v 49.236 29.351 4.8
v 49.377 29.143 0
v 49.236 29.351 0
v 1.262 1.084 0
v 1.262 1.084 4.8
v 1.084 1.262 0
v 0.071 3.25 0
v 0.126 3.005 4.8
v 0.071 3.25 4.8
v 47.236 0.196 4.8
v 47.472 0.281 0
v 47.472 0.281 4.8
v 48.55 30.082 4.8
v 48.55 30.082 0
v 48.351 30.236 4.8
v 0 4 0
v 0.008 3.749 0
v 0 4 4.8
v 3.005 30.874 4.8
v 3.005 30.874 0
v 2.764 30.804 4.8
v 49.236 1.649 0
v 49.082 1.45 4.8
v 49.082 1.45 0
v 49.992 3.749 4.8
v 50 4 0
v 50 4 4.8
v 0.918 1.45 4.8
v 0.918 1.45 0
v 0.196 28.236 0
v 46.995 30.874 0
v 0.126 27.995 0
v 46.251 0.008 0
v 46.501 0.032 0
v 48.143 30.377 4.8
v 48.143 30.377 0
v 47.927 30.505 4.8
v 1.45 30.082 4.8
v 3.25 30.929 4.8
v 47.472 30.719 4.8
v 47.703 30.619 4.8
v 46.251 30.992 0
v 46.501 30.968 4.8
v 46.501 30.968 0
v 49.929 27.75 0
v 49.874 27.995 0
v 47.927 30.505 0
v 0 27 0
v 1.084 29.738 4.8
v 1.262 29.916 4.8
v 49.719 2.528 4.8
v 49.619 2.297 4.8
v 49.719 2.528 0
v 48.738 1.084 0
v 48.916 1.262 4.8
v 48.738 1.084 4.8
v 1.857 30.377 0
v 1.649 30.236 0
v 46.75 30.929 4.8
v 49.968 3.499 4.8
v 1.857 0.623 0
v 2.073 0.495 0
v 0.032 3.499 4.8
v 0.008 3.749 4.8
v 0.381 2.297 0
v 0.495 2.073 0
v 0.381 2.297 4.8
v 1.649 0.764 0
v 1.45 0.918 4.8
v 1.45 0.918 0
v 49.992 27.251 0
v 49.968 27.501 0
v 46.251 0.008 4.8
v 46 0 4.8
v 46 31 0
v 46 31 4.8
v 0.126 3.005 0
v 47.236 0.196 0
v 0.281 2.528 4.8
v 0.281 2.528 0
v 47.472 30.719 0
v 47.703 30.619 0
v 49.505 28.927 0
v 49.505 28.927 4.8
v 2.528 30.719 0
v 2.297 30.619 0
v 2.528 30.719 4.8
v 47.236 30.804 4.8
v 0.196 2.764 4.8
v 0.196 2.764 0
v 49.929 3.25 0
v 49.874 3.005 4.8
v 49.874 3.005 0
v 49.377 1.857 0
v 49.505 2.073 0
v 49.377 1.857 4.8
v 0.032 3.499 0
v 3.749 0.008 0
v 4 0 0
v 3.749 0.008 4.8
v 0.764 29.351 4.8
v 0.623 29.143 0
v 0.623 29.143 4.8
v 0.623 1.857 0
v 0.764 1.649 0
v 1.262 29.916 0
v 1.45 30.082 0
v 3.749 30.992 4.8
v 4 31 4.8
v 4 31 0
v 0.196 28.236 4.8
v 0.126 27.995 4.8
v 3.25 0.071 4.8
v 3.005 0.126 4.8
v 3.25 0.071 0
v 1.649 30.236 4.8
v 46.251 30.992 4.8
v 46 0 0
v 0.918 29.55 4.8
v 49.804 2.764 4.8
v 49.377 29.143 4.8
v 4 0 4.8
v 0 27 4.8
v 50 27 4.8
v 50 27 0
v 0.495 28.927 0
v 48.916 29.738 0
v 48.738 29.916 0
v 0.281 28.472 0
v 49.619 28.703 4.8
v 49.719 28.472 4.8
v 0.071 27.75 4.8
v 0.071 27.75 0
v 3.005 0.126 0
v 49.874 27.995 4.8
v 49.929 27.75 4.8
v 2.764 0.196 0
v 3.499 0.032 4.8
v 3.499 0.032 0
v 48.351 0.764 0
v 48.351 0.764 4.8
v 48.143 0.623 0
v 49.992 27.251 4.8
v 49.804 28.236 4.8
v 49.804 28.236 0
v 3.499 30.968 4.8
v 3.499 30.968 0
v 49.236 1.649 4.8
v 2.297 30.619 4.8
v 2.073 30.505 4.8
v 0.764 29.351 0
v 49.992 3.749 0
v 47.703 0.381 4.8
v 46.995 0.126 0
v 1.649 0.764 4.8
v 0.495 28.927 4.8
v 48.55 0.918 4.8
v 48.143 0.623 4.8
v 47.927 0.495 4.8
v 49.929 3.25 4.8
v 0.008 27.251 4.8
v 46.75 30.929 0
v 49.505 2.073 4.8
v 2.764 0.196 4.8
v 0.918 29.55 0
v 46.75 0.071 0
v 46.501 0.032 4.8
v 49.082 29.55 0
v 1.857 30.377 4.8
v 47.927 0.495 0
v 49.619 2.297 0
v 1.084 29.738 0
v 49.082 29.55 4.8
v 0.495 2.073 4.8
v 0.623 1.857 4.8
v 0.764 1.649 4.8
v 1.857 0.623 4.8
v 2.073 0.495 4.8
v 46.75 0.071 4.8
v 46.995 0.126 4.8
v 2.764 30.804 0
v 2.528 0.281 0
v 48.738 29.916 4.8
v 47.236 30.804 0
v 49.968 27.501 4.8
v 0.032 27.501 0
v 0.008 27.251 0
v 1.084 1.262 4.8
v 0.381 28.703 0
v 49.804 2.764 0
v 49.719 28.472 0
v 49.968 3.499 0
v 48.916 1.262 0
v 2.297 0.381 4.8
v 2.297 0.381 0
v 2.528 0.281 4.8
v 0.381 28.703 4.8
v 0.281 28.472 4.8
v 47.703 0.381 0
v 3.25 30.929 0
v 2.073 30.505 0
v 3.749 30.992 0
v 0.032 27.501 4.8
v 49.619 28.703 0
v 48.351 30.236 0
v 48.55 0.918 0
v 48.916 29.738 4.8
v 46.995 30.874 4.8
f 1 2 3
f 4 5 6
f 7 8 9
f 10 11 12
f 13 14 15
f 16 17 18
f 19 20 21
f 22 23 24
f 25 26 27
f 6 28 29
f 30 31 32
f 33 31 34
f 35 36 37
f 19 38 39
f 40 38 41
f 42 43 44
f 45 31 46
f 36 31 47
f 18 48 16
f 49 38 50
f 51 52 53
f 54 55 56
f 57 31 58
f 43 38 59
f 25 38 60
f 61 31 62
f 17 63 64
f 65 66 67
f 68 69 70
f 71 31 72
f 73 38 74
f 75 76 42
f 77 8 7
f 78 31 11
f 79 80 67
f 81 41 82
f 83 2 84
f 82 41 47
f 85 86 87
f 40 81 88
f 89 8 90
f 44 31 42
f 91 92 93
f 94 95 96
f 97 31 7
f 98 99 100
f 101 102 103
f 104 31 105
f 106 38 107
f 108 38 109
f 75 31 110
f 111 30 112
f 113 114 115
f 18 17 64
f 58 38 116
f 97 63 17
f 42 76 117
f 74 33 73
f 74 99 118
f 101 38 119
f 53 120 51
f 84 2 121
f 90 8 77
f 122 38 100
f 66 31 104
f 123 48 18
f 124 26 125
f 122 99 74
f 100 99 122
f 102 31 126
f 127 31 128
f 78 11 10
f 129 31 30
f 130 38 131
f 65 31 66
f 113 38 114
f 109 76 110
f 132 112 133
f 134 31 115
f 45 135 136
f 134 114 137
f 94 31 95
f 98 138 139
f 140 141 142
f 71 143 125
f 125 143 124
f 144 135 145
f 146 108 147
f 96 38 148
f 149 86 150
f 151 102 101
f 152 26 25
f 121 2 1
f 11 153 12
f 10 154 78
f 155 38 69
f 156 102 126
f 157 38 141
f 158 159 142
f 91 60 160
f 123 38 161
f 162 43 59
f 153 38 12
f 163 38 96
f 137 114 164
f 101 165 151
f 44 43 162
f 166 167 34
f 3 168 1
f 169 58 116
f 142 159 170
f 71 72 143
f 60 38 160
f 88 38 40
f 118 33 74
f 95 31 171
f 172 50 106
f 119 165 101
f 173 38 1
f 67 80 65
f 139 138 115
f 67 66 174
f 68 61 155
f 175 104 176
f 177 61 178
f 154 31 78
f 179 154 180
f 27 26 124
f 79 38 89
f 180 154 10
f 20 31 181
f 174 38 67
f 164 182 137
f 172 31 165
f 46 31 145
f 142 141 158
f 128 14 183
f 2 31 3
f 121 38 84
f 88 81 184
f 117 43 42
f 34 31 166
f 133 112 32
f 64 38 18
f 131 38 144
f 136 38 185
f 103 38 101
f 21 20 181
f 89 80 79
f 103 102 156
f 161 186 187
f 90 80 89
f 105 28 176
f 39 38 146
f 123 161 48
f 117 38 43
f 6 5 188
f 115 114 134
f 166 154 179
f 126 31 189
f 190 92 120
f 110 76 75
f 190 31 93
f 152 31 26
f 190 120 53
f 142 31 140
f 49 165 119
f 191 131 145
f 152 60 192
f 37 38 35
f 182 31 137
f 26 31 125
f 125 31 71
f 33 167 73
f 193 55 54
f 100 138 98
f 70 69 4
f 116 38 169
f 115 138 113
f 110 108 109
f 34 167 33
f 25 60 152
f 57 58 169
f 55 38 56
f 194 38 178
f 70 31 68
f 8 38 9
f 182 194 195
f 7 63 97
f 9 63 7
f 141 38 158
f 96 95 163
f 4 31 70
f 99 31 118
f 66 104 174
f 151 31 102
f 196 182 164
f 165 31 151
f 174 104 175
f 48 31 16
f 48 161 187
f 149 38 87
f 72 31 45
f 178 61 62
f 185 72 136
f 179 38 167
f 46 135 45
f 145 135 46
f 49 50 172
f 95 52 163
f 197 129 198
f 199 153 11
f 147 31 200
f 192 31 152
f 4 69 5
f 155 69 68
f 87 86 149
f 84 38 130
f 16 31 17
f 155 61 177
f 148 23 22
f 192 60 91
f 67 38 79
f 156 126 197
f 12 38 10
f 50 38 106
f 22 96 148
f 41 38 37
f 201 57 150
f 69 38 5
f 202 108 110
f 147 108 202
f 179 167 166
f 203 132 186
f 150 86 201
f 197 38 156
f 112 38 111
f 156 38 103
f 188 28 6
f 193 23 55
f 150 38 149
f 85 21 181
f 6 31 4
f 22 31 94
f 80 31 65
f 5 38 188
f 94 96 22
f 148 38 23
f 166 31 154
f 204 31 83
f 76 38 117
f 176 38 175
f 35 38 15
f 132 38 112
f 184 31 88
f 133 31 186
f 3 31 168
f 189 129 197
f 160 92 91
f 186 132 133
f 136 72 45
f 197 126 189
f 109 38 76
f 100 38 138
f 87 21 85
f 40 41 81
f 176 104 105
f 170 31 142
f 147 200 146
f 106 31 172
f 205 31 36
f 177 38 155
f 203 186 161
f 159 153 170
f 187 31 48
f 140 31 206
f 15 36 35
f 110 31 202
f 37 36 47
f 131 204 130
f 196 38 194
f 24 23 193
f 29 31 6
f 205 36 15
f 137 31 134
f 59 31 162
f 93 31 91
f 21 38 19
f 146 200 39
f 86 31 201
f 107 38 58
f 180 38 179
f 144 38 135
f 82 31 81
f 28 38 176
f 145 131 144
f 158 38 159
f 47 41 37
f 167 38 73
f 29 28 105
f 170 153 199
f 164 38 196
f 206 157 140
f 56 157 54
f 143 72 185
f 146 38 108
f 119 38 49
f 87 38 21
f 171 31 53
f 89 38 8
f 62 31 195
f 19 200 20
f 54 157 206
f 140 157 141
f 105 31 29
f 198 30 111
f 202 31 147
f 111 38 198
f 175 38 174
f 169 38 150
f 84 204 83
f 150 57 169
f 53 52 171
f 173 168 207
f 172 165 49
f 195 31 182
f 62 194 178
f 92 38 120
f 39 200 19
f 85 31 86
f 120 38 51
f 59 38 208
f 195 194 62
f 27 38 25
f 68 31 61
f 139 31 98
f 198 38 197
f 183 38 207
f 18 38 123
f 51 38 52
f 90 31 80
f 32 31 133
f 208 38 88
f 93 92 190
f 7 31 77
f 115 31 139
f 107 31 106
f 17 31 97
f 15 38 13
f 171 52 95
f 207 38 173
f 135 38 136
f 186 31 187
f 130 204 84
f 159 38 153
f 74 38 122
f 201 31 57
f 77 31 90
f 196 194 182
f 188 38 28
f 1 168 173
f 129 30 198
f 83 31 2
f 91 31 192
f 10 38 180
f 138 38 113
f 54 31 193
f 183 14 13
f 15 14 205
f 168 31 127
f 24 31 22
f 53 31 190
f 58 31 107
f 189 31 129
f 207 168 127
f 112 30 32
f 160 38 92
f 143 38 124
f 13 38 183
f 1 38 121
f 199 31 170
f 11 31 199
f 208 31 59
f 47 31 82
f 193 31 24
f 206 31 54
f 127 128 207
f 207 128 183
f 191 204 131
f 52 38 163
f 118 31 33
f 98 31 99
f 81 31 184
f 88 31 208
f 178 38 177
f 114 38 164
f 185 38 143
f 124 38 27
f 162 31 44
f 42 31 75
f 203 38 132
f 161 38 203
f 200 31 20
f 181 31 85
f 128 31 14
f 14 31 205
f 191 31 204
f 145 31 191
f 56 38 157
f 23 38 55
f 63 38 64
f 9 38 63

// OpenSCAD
// file: ../configurations/global.scad
// gold_number = 1.618;

housing_facades_throws_diameter = 3.8;

// external size
case_external_x_size = 165;
case_external_y_size = 92;
case_external_z_size = 38;
case_external_panes_thickness = 4.8;

facade_front_round_edges_radius = 5;
facade_throws_margin = 5;

// facade corners
facade_corners_offset_lenght = 9;
facade_corners_main_x_size = 19;
facade_corners_main_y_size = 19;
facade_corners_main_thickness = 11;
facade_corners_correction_offset_length = 0.2;
facade_corners_correction_offset_thickness = 0.0;
facade_fn = 100;


// Generics
insert_throw_diameter = 4.2;
insert_throw_length = 6 + 2;


// mother board
mother_board_cny70set_x_point_coord = 10;
mother_board_cny70set_y_point_coord = 7;



// Cassette
cassette_x_size = 50;
cassette_y_size = 31;
cassette_z_size = 4.8;
cassette_round_radius = 4;

// Cassette case
cassette_case_x_size = 76.2;
cassette_case_y_size = 55.88;
cassette_case_z_size = 9;
cassette_case_round_radius = 1;

cassette_case_x_y_margin = 0.75;

cassette_case_embed_x_size = 62;
cassette_case_embed_y_size = 42;
cassette_case_embed_z_size = 4.8;
cassette_case_embed_offsets = 10;
cassette_case_embed_round_radius = 6;

cassette_case_throws_margin = 2.54 * 2;
cassette_case_throws_diameter = 3.5;
cassette_case_grip_enveloppe_diameter = 15;
cassette_case_grip_enveloppe_offset = 3;

cassette_case_cny70set_x_point_coord = mother_board_cny70set_x_point_coord;
cassette_case_cny70set_y_point_coord = mother_board_cny70set_y_point_coord;
cassette_case_cny70set_x_y_margin = 0.5;

// Front panel throw cassette case mounting 
cassette_case_embed_throw_margin = 0.5;


// Mother board joins
bolt_join_mother_board_internal_diameter = 3.5;
bolt_join_mother_board_external_diameter = 3.5 + (0.4 * 12);
bolt_join_mother_board_height = 8.5;
bolt_join_fn = 200;


// speaker facade
speaker_facade_x_size = 50;
speaker_facade_y_size = cassette_case_y_size - cassette_case_throws_margin * 2 + 7;
speaker_facade_z_size = 2;
speaker_facade_rounded_radius = 3;
speaker_facade_fixation_throws_margin = 3.5;
speaker_facade_fixation_throws_diameter = 3.5;
speaker_facade_throw_diameter = 40+1;
// 
facade_top_on_off_button_throw_diameter = 12.8;


facade_cassette_case_coords = [
    60 + 5,
    23,
];

facade_speaker_40mm_coords = [
    32 + 5,
    facade_cassette_case_coords[1] + (cassette_case_y_size / 2),
];

batteries_holder_coords = [
    8 + 5,
    20
];

volume_buttons_spacing = 20;
//volume_buttons_coords = [145,50];
volume_buttons_coords = [
    145 + 5 ,
    facade_cassette_case_coords[1] + (cassette_case_y_size / 2),
];

controller_buttons_spacing = 20;
//controller_buttons_coords = [98,14];
controller_buttons_coords = [
    facade_cassette_case_coords[0] + (cassette_case_x_size / 2),
    14
];

controller_onoff_coords = [
    32 + 5,
    14
];
// file: ../libraries/commons.scad
/**
 * forEachCoord
 * Wrapper to apply child on each element
 */
module forEachCoord(coords_list) {
    for (coords = coords_list)
        translate(
            [
                coords[0] == undef ? 0 : coords[0],
                coords[1] == undef ? 0 : coords[1],
                coords[2] == undef ? 0 : coords[2],
            ]
        )
            children();
}
// main file
use <../libraries/commons.scad>
include <../configurations/global.scad>

module cassettePiece(
    x_size = cassette_x_size,
    y_size = cassette_y_size,
    z_size = cassette_z_size,
    round_radius = cassette_round_radius,
) {

    echo(str("cassettePiece ", "x_size: ", x_size, " y_size: ", y_size, " z_size: ", z_size));

    hull()
        forEachCoord([
            [0 + round_radius, 0 + round_radius],
            [0 + round_radius, y_size - round_radius],
            [x_size - round_radius, 0 + round_radius],
            [x_size - round_radius, y_size - round_radius]
        ])
            cylinder(r=round_radius, h=z_size, $fn=100);

}


cassettePiece();
